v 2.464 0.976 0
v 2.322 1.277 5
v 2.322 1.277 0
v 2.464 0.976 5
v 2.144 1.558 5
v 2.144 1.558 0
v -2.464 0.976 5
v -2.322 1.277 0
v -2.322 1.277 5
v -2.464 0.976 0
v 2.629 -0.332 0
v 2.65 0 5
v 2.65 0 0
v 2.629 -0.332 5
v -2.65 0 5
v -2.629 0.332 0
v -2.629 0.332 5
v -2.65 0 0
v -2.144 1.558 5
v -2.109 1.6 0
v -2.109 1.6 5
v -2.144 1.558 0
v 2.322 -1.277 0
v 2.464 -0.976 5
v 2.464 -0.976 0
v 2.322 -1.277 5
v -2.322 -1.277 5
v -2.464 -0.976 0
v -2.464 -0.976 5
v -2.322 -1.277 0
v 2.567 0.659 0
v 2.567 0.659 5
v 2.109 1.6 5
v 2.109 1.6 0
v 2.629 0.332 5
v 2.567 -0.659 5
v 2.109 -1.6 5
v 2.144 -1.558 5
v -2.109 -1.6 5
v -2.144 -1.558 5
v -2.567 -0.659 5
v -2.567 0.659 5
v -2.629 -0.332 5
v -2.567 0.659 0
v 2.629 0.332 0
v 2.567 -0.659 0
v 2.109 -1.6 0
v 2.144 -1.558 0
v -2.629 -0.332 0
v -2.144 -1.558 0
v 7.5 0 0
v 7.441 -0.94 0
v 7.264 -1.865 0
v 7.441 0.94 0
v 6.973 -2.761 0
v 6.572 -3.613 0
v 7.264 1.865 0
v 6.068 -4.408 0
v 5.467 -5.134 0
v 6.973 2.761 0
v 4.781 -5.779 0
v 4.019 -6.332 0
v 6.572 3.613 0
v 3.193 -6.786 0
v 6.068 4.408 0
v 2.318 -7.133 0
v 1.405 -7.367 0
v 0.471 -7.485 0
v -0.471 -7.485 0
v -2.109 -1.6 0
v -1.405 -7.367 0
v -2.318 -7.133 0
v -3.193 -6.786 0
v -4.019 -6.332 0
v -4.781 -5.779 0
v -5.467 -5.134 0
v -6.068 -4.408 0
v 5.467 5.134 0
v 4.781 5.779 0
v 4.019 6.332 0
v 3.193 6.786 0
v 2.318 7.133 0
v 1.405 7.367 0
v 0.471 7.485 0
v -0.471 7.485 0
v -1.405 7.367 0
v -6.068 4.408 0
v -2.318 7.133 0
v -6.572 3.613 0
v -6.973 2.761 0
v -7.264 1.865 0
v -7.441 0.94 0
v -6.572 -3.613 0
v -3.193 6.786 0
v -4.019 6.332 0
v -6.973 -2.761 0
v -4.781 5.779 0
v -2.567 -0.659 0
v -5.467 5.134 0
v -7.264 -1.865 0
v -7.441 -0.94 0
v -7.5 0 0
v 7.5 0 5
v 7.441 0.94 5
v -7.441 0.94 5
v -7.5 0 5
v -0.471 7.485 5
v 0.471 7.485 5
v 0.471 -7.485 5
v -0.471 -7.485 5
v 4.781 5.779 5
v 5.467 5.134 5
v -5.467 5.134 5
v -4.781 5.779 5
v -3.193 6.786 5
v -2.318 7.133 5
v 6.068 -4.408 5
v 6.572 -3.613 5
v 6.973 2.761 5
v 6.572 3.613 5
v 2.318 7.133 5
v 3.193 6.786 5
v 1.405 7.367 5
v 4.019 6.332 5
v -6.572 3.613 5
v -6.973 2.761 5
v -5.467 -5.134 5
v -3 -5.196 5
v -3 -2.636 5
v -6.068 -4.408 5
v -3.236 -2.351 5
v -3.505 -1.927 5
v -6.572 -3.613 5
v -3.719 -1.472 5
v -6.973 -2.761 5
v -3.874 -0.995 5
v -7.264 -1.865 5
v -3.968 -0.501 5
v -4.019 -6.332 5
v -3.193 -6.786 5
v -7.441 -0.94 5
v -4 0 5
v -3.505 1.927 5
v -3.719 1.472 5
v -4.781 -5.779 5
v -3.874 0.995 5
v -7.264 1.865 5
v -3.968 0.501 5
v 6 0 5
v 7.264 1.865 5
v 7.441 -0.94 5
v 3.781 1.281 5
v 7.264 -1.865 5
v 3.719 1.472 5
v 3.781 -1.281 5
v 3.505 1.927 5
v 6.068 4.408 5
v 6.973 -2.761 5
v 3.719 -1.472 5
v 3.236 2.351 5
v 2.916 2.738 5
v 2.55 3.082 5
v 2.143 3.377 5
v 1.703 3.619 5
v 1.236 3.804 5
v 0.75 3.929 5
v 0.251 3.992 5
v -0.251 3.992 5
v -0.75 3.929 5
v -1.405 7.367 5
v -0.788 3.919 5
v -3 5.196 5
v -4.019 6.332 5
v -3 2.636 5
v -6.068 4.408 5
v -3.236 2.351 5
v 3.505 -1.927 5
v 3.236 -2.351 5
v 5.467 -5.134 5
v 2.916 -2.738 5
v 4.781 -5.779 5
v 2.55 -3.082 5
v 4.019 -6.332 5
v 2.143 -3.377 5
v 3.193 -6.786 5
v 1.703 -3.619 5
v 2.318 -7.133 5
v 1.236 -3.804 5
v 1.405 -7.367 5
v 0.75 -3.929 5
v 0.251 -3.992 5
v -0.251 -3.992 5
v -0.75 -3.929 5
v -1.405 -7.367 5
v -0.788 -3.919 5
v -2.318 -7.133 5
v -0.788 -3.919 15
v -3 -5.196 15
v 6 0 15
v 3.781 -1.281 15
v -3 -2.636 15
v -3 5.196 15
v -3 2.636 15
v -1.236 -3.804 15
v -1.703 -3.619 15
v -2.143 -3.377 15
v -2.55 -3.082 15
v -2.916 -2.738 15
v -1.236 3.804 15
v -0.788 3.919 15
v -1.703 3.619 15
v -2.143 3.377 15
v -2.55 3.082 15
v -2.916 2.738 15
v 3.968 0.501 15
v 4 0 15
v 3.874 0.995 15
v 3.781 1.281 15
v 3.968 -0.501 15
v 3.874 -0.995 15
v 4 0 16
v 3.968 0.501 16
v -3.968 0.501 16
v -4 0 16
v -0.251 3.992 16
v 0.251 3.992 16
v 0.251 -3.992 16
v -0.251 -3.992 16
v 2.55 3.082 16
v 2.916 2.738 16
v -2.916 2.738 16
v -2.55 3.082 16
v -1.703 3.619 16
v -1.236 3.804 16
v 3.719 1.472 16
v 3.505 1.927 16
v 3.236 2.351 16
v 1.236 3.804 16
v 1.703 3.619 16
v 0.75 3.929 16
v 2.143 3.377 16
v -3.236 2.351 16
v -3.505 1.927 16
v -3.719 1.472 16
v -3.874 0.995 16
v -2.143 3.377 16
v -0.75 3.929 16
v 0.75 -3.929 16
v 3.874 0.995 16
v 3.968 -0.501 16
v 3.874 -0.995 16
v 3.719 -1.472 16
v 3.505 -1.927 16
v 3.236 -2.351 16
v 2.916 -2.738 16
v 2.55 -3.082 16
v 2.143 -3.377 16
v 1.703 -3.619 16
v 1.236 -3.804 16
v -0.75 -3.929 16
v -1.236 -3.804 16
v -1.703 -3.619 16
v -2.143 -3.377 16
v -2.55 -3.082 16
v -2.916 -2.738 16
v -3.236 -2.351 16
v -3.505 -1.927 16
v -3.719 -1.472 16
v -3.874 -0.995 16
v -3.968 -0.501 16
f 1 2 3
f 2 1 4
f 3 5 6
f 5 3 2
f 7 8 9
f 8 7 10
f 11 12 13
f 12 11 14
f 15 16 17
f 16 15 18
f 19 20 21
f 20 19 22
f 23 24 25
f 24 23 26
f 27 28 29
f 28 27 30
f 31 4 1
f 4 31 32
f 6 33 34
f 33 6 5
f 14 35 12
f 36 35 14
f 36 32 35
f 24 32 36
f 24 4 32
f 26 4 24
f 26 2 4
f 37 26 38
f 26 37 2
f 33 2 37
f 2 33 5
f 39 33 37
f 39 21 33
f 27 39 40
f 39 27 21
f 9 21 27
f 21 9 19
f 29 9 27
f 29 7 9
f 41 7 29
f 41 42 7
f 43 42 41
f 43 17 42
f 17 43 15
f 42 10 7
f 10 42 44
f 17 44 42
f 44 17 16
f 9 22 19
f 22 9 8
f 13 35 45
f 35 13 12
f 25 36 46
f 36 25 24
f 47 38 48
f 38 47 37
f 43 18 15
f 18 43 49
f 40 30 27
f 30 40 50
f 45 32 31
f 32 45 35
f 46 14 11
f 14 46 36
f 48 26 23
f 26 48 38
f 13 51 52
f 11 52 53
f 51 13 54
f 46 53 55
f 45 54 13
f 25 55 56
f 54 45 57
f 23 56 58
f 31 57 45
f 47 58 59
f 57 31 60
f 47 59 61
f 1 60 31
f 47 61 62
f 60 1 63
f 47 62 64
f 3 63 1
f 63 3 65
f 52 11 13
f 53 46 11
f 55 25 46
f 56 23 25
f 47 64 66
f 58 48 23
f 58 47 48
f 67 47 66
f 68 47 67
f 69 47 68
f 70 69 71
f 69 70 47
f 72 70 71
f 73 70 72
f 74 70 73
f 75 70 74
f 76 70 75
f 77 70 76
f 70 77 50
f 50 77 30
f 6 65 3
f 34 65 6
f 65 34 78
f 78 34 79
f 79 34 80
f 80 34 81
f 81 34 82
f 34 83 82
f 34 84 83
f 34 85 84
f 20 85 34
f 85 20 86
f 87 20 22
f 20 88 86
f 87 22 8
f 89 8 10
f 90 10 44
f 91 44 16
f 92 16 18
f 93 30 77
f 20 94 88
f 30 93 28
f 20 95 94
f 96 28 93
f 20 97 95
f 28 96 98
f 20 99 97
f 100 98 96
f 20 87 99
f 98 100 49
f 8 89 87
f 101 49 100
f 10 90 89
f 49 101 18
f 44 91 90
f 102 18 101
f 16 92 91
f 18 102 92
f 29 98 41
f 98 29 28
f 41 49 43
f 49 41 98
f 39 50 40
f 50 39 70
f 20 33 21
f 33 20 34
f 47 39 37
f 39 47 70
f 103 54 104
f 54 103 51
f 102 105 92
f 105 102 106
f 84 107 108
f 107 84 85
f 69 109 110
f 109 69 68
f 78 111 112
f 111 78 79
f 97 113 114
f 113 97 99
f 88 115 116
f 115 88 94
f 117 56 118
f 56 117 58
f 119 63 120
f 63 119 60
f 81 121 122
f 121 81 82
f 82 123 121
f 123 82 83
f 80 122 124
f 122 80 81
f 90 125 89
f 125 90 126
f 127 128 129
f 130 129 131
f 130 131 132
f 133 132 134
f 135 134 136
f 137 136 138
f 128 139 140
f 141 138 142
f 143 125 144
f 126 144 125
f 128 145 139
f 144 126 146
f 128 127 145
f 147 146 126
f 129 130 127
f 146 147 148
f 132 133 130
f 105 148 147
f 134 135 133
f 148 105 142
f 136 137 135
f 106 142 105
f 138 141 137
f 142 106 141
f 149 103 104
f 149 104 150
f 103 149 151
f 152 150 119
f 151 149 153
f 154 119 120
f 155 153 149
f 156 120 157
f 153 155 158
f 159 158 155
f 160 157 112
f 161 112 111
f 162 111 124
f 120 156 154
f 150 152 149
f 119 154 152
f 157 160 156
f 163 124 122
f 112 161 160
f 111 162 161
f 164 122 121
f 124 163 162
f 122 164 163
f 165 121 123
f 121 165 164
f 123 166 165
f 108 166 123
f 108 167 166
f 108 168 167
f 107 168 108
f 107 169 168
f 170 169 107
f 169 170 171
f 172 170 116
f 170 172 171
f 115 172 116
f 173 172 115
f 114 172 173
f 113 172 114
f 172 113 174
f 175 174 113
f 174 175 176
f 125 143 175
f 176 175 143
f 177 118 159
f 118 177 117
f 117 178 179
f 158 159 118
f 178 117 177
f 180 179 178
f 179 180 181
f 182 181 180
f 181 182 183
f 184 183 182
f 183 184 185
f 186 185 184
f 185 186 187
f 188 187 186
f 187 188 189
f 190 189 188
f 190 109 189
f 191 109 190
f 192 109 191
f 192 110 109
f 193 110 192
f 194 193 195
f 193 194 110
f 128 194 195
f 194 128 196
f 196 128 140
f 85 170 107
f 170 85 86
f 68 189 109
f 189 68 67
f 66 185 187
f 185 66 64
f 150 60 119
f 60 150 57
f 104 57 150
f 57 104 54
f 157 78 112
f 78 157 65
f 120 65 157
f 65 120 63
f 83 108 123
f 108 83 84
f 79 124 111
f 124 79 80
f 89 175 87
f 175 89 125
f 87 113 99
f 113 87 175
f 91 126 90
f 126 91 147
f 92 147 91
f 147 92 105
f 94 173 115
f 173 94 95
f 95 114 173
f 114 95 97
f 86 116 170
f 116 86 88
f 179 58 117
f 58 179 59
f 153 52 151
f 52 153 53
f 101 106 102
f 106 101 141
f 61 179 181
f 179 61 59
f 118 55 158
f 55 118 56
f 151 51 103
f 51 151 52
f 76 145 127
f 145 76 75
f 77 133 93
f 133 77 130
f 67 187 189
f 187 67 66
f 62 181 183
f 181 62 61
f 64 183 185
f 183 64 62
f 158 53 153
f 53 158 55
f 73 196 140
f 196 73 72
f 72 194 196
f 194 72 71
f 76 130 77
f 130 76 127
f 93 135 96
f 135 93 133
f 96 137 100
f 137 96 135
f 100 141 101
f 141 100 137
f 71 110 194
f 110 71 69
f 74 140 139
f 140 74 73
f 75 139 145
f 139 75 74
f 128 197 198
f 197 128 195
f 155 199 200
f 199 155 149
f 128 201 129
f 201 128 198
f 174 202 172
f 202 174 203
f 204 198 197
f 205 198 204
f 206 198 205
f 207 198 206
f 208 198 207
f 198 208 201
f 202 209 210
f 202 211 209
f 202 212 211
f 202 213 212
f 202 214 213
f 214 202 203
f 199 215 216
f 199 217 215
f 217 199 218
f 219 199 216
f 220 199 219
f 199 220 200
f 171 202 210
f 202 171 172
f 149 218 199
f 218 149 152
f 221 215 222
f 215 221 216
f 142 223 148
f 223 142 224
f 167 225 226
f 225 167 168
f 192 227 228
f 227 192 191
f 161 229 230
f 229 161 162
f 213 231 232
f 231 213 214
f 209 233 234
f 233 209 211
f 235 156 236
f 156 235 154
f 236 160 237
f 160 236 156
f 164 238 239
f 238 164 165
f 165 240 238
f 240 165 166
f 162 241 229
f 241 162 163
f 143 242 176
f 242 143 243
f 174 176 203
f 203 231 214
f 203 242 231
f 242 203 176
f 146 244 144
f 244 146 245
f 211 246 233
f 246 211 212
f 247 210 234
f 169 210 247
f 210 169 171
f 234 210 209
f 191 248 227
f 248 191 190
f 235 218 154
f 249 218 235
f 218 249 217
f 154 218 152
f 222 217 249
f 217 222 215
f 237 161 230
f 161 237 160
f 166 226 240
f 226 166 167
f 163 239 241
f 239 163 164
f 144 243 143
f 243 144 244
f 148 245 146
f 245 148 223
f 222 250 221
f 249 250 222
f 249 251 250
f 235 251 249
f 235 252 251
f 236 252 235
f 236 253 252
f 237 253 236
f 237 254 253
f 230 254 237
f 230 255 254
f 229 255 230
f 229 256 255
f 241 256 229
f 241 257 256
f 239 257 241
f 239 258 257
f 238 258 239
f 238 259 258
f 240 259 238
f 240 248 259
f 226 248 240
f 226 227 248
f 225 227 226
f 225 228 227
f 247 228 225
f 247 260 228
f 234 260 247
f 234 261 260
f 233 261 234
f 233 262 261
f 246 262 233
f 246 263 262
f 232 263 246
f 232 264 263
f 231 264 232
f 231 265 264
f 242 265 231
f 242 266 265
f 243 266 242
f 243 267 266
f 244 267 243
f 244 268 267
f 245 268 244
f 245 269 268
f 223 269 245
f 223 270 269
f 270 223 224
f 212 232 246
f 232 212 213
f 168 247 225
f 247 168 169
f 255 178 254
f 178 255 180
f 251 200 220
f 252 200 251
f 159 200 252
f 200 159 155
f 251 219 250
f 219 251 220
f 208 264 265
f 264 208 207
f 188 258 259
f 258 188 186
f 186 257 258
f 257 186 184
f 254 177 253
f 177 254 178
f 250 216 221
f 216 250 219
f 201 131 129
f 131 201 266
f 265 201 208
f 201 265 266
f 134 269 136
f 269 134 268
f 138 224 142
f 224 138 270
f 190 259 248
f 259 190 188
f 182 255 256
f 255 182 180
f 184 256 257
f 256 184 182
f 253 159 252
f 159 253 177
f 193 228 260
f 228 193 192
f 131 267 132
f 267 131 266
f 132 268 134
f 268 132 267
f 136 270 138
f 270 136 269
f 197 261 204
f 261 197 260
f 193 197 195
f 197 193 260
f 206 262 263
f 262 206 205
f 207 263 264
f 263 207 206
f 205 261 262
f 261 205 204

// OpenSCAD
// motorized turncap for http://www.thingiverse.com/thing:1385312
// 28BYJ-48 stepper motor https://bit.ly/2D7cuD0

$fn=50;

module chopped_turncap() {
    cylinder(5, d=15);
    z=6;
    linear_extrude(15) polygon([[cos(0)*z,sin(0)*z],
                                [cos(120)*z,sin(120)*z],
                                [cos(240)*z,sin(240)*z]]);
    cylinder(16, d=8);
}

module drive_hole() {
  CX=5.3;
  CY=3.2;
  ZZ=5;
  intersection() {
    cylinder(ZZ,d=CX);
    translate([-CX/2,-CY/2,0])cube([CX,CY,ZZ]);
  }
}


module turncap() {
  difference() {
    chopped_turncap();
    drive_hole();
  }
}

turncap();
